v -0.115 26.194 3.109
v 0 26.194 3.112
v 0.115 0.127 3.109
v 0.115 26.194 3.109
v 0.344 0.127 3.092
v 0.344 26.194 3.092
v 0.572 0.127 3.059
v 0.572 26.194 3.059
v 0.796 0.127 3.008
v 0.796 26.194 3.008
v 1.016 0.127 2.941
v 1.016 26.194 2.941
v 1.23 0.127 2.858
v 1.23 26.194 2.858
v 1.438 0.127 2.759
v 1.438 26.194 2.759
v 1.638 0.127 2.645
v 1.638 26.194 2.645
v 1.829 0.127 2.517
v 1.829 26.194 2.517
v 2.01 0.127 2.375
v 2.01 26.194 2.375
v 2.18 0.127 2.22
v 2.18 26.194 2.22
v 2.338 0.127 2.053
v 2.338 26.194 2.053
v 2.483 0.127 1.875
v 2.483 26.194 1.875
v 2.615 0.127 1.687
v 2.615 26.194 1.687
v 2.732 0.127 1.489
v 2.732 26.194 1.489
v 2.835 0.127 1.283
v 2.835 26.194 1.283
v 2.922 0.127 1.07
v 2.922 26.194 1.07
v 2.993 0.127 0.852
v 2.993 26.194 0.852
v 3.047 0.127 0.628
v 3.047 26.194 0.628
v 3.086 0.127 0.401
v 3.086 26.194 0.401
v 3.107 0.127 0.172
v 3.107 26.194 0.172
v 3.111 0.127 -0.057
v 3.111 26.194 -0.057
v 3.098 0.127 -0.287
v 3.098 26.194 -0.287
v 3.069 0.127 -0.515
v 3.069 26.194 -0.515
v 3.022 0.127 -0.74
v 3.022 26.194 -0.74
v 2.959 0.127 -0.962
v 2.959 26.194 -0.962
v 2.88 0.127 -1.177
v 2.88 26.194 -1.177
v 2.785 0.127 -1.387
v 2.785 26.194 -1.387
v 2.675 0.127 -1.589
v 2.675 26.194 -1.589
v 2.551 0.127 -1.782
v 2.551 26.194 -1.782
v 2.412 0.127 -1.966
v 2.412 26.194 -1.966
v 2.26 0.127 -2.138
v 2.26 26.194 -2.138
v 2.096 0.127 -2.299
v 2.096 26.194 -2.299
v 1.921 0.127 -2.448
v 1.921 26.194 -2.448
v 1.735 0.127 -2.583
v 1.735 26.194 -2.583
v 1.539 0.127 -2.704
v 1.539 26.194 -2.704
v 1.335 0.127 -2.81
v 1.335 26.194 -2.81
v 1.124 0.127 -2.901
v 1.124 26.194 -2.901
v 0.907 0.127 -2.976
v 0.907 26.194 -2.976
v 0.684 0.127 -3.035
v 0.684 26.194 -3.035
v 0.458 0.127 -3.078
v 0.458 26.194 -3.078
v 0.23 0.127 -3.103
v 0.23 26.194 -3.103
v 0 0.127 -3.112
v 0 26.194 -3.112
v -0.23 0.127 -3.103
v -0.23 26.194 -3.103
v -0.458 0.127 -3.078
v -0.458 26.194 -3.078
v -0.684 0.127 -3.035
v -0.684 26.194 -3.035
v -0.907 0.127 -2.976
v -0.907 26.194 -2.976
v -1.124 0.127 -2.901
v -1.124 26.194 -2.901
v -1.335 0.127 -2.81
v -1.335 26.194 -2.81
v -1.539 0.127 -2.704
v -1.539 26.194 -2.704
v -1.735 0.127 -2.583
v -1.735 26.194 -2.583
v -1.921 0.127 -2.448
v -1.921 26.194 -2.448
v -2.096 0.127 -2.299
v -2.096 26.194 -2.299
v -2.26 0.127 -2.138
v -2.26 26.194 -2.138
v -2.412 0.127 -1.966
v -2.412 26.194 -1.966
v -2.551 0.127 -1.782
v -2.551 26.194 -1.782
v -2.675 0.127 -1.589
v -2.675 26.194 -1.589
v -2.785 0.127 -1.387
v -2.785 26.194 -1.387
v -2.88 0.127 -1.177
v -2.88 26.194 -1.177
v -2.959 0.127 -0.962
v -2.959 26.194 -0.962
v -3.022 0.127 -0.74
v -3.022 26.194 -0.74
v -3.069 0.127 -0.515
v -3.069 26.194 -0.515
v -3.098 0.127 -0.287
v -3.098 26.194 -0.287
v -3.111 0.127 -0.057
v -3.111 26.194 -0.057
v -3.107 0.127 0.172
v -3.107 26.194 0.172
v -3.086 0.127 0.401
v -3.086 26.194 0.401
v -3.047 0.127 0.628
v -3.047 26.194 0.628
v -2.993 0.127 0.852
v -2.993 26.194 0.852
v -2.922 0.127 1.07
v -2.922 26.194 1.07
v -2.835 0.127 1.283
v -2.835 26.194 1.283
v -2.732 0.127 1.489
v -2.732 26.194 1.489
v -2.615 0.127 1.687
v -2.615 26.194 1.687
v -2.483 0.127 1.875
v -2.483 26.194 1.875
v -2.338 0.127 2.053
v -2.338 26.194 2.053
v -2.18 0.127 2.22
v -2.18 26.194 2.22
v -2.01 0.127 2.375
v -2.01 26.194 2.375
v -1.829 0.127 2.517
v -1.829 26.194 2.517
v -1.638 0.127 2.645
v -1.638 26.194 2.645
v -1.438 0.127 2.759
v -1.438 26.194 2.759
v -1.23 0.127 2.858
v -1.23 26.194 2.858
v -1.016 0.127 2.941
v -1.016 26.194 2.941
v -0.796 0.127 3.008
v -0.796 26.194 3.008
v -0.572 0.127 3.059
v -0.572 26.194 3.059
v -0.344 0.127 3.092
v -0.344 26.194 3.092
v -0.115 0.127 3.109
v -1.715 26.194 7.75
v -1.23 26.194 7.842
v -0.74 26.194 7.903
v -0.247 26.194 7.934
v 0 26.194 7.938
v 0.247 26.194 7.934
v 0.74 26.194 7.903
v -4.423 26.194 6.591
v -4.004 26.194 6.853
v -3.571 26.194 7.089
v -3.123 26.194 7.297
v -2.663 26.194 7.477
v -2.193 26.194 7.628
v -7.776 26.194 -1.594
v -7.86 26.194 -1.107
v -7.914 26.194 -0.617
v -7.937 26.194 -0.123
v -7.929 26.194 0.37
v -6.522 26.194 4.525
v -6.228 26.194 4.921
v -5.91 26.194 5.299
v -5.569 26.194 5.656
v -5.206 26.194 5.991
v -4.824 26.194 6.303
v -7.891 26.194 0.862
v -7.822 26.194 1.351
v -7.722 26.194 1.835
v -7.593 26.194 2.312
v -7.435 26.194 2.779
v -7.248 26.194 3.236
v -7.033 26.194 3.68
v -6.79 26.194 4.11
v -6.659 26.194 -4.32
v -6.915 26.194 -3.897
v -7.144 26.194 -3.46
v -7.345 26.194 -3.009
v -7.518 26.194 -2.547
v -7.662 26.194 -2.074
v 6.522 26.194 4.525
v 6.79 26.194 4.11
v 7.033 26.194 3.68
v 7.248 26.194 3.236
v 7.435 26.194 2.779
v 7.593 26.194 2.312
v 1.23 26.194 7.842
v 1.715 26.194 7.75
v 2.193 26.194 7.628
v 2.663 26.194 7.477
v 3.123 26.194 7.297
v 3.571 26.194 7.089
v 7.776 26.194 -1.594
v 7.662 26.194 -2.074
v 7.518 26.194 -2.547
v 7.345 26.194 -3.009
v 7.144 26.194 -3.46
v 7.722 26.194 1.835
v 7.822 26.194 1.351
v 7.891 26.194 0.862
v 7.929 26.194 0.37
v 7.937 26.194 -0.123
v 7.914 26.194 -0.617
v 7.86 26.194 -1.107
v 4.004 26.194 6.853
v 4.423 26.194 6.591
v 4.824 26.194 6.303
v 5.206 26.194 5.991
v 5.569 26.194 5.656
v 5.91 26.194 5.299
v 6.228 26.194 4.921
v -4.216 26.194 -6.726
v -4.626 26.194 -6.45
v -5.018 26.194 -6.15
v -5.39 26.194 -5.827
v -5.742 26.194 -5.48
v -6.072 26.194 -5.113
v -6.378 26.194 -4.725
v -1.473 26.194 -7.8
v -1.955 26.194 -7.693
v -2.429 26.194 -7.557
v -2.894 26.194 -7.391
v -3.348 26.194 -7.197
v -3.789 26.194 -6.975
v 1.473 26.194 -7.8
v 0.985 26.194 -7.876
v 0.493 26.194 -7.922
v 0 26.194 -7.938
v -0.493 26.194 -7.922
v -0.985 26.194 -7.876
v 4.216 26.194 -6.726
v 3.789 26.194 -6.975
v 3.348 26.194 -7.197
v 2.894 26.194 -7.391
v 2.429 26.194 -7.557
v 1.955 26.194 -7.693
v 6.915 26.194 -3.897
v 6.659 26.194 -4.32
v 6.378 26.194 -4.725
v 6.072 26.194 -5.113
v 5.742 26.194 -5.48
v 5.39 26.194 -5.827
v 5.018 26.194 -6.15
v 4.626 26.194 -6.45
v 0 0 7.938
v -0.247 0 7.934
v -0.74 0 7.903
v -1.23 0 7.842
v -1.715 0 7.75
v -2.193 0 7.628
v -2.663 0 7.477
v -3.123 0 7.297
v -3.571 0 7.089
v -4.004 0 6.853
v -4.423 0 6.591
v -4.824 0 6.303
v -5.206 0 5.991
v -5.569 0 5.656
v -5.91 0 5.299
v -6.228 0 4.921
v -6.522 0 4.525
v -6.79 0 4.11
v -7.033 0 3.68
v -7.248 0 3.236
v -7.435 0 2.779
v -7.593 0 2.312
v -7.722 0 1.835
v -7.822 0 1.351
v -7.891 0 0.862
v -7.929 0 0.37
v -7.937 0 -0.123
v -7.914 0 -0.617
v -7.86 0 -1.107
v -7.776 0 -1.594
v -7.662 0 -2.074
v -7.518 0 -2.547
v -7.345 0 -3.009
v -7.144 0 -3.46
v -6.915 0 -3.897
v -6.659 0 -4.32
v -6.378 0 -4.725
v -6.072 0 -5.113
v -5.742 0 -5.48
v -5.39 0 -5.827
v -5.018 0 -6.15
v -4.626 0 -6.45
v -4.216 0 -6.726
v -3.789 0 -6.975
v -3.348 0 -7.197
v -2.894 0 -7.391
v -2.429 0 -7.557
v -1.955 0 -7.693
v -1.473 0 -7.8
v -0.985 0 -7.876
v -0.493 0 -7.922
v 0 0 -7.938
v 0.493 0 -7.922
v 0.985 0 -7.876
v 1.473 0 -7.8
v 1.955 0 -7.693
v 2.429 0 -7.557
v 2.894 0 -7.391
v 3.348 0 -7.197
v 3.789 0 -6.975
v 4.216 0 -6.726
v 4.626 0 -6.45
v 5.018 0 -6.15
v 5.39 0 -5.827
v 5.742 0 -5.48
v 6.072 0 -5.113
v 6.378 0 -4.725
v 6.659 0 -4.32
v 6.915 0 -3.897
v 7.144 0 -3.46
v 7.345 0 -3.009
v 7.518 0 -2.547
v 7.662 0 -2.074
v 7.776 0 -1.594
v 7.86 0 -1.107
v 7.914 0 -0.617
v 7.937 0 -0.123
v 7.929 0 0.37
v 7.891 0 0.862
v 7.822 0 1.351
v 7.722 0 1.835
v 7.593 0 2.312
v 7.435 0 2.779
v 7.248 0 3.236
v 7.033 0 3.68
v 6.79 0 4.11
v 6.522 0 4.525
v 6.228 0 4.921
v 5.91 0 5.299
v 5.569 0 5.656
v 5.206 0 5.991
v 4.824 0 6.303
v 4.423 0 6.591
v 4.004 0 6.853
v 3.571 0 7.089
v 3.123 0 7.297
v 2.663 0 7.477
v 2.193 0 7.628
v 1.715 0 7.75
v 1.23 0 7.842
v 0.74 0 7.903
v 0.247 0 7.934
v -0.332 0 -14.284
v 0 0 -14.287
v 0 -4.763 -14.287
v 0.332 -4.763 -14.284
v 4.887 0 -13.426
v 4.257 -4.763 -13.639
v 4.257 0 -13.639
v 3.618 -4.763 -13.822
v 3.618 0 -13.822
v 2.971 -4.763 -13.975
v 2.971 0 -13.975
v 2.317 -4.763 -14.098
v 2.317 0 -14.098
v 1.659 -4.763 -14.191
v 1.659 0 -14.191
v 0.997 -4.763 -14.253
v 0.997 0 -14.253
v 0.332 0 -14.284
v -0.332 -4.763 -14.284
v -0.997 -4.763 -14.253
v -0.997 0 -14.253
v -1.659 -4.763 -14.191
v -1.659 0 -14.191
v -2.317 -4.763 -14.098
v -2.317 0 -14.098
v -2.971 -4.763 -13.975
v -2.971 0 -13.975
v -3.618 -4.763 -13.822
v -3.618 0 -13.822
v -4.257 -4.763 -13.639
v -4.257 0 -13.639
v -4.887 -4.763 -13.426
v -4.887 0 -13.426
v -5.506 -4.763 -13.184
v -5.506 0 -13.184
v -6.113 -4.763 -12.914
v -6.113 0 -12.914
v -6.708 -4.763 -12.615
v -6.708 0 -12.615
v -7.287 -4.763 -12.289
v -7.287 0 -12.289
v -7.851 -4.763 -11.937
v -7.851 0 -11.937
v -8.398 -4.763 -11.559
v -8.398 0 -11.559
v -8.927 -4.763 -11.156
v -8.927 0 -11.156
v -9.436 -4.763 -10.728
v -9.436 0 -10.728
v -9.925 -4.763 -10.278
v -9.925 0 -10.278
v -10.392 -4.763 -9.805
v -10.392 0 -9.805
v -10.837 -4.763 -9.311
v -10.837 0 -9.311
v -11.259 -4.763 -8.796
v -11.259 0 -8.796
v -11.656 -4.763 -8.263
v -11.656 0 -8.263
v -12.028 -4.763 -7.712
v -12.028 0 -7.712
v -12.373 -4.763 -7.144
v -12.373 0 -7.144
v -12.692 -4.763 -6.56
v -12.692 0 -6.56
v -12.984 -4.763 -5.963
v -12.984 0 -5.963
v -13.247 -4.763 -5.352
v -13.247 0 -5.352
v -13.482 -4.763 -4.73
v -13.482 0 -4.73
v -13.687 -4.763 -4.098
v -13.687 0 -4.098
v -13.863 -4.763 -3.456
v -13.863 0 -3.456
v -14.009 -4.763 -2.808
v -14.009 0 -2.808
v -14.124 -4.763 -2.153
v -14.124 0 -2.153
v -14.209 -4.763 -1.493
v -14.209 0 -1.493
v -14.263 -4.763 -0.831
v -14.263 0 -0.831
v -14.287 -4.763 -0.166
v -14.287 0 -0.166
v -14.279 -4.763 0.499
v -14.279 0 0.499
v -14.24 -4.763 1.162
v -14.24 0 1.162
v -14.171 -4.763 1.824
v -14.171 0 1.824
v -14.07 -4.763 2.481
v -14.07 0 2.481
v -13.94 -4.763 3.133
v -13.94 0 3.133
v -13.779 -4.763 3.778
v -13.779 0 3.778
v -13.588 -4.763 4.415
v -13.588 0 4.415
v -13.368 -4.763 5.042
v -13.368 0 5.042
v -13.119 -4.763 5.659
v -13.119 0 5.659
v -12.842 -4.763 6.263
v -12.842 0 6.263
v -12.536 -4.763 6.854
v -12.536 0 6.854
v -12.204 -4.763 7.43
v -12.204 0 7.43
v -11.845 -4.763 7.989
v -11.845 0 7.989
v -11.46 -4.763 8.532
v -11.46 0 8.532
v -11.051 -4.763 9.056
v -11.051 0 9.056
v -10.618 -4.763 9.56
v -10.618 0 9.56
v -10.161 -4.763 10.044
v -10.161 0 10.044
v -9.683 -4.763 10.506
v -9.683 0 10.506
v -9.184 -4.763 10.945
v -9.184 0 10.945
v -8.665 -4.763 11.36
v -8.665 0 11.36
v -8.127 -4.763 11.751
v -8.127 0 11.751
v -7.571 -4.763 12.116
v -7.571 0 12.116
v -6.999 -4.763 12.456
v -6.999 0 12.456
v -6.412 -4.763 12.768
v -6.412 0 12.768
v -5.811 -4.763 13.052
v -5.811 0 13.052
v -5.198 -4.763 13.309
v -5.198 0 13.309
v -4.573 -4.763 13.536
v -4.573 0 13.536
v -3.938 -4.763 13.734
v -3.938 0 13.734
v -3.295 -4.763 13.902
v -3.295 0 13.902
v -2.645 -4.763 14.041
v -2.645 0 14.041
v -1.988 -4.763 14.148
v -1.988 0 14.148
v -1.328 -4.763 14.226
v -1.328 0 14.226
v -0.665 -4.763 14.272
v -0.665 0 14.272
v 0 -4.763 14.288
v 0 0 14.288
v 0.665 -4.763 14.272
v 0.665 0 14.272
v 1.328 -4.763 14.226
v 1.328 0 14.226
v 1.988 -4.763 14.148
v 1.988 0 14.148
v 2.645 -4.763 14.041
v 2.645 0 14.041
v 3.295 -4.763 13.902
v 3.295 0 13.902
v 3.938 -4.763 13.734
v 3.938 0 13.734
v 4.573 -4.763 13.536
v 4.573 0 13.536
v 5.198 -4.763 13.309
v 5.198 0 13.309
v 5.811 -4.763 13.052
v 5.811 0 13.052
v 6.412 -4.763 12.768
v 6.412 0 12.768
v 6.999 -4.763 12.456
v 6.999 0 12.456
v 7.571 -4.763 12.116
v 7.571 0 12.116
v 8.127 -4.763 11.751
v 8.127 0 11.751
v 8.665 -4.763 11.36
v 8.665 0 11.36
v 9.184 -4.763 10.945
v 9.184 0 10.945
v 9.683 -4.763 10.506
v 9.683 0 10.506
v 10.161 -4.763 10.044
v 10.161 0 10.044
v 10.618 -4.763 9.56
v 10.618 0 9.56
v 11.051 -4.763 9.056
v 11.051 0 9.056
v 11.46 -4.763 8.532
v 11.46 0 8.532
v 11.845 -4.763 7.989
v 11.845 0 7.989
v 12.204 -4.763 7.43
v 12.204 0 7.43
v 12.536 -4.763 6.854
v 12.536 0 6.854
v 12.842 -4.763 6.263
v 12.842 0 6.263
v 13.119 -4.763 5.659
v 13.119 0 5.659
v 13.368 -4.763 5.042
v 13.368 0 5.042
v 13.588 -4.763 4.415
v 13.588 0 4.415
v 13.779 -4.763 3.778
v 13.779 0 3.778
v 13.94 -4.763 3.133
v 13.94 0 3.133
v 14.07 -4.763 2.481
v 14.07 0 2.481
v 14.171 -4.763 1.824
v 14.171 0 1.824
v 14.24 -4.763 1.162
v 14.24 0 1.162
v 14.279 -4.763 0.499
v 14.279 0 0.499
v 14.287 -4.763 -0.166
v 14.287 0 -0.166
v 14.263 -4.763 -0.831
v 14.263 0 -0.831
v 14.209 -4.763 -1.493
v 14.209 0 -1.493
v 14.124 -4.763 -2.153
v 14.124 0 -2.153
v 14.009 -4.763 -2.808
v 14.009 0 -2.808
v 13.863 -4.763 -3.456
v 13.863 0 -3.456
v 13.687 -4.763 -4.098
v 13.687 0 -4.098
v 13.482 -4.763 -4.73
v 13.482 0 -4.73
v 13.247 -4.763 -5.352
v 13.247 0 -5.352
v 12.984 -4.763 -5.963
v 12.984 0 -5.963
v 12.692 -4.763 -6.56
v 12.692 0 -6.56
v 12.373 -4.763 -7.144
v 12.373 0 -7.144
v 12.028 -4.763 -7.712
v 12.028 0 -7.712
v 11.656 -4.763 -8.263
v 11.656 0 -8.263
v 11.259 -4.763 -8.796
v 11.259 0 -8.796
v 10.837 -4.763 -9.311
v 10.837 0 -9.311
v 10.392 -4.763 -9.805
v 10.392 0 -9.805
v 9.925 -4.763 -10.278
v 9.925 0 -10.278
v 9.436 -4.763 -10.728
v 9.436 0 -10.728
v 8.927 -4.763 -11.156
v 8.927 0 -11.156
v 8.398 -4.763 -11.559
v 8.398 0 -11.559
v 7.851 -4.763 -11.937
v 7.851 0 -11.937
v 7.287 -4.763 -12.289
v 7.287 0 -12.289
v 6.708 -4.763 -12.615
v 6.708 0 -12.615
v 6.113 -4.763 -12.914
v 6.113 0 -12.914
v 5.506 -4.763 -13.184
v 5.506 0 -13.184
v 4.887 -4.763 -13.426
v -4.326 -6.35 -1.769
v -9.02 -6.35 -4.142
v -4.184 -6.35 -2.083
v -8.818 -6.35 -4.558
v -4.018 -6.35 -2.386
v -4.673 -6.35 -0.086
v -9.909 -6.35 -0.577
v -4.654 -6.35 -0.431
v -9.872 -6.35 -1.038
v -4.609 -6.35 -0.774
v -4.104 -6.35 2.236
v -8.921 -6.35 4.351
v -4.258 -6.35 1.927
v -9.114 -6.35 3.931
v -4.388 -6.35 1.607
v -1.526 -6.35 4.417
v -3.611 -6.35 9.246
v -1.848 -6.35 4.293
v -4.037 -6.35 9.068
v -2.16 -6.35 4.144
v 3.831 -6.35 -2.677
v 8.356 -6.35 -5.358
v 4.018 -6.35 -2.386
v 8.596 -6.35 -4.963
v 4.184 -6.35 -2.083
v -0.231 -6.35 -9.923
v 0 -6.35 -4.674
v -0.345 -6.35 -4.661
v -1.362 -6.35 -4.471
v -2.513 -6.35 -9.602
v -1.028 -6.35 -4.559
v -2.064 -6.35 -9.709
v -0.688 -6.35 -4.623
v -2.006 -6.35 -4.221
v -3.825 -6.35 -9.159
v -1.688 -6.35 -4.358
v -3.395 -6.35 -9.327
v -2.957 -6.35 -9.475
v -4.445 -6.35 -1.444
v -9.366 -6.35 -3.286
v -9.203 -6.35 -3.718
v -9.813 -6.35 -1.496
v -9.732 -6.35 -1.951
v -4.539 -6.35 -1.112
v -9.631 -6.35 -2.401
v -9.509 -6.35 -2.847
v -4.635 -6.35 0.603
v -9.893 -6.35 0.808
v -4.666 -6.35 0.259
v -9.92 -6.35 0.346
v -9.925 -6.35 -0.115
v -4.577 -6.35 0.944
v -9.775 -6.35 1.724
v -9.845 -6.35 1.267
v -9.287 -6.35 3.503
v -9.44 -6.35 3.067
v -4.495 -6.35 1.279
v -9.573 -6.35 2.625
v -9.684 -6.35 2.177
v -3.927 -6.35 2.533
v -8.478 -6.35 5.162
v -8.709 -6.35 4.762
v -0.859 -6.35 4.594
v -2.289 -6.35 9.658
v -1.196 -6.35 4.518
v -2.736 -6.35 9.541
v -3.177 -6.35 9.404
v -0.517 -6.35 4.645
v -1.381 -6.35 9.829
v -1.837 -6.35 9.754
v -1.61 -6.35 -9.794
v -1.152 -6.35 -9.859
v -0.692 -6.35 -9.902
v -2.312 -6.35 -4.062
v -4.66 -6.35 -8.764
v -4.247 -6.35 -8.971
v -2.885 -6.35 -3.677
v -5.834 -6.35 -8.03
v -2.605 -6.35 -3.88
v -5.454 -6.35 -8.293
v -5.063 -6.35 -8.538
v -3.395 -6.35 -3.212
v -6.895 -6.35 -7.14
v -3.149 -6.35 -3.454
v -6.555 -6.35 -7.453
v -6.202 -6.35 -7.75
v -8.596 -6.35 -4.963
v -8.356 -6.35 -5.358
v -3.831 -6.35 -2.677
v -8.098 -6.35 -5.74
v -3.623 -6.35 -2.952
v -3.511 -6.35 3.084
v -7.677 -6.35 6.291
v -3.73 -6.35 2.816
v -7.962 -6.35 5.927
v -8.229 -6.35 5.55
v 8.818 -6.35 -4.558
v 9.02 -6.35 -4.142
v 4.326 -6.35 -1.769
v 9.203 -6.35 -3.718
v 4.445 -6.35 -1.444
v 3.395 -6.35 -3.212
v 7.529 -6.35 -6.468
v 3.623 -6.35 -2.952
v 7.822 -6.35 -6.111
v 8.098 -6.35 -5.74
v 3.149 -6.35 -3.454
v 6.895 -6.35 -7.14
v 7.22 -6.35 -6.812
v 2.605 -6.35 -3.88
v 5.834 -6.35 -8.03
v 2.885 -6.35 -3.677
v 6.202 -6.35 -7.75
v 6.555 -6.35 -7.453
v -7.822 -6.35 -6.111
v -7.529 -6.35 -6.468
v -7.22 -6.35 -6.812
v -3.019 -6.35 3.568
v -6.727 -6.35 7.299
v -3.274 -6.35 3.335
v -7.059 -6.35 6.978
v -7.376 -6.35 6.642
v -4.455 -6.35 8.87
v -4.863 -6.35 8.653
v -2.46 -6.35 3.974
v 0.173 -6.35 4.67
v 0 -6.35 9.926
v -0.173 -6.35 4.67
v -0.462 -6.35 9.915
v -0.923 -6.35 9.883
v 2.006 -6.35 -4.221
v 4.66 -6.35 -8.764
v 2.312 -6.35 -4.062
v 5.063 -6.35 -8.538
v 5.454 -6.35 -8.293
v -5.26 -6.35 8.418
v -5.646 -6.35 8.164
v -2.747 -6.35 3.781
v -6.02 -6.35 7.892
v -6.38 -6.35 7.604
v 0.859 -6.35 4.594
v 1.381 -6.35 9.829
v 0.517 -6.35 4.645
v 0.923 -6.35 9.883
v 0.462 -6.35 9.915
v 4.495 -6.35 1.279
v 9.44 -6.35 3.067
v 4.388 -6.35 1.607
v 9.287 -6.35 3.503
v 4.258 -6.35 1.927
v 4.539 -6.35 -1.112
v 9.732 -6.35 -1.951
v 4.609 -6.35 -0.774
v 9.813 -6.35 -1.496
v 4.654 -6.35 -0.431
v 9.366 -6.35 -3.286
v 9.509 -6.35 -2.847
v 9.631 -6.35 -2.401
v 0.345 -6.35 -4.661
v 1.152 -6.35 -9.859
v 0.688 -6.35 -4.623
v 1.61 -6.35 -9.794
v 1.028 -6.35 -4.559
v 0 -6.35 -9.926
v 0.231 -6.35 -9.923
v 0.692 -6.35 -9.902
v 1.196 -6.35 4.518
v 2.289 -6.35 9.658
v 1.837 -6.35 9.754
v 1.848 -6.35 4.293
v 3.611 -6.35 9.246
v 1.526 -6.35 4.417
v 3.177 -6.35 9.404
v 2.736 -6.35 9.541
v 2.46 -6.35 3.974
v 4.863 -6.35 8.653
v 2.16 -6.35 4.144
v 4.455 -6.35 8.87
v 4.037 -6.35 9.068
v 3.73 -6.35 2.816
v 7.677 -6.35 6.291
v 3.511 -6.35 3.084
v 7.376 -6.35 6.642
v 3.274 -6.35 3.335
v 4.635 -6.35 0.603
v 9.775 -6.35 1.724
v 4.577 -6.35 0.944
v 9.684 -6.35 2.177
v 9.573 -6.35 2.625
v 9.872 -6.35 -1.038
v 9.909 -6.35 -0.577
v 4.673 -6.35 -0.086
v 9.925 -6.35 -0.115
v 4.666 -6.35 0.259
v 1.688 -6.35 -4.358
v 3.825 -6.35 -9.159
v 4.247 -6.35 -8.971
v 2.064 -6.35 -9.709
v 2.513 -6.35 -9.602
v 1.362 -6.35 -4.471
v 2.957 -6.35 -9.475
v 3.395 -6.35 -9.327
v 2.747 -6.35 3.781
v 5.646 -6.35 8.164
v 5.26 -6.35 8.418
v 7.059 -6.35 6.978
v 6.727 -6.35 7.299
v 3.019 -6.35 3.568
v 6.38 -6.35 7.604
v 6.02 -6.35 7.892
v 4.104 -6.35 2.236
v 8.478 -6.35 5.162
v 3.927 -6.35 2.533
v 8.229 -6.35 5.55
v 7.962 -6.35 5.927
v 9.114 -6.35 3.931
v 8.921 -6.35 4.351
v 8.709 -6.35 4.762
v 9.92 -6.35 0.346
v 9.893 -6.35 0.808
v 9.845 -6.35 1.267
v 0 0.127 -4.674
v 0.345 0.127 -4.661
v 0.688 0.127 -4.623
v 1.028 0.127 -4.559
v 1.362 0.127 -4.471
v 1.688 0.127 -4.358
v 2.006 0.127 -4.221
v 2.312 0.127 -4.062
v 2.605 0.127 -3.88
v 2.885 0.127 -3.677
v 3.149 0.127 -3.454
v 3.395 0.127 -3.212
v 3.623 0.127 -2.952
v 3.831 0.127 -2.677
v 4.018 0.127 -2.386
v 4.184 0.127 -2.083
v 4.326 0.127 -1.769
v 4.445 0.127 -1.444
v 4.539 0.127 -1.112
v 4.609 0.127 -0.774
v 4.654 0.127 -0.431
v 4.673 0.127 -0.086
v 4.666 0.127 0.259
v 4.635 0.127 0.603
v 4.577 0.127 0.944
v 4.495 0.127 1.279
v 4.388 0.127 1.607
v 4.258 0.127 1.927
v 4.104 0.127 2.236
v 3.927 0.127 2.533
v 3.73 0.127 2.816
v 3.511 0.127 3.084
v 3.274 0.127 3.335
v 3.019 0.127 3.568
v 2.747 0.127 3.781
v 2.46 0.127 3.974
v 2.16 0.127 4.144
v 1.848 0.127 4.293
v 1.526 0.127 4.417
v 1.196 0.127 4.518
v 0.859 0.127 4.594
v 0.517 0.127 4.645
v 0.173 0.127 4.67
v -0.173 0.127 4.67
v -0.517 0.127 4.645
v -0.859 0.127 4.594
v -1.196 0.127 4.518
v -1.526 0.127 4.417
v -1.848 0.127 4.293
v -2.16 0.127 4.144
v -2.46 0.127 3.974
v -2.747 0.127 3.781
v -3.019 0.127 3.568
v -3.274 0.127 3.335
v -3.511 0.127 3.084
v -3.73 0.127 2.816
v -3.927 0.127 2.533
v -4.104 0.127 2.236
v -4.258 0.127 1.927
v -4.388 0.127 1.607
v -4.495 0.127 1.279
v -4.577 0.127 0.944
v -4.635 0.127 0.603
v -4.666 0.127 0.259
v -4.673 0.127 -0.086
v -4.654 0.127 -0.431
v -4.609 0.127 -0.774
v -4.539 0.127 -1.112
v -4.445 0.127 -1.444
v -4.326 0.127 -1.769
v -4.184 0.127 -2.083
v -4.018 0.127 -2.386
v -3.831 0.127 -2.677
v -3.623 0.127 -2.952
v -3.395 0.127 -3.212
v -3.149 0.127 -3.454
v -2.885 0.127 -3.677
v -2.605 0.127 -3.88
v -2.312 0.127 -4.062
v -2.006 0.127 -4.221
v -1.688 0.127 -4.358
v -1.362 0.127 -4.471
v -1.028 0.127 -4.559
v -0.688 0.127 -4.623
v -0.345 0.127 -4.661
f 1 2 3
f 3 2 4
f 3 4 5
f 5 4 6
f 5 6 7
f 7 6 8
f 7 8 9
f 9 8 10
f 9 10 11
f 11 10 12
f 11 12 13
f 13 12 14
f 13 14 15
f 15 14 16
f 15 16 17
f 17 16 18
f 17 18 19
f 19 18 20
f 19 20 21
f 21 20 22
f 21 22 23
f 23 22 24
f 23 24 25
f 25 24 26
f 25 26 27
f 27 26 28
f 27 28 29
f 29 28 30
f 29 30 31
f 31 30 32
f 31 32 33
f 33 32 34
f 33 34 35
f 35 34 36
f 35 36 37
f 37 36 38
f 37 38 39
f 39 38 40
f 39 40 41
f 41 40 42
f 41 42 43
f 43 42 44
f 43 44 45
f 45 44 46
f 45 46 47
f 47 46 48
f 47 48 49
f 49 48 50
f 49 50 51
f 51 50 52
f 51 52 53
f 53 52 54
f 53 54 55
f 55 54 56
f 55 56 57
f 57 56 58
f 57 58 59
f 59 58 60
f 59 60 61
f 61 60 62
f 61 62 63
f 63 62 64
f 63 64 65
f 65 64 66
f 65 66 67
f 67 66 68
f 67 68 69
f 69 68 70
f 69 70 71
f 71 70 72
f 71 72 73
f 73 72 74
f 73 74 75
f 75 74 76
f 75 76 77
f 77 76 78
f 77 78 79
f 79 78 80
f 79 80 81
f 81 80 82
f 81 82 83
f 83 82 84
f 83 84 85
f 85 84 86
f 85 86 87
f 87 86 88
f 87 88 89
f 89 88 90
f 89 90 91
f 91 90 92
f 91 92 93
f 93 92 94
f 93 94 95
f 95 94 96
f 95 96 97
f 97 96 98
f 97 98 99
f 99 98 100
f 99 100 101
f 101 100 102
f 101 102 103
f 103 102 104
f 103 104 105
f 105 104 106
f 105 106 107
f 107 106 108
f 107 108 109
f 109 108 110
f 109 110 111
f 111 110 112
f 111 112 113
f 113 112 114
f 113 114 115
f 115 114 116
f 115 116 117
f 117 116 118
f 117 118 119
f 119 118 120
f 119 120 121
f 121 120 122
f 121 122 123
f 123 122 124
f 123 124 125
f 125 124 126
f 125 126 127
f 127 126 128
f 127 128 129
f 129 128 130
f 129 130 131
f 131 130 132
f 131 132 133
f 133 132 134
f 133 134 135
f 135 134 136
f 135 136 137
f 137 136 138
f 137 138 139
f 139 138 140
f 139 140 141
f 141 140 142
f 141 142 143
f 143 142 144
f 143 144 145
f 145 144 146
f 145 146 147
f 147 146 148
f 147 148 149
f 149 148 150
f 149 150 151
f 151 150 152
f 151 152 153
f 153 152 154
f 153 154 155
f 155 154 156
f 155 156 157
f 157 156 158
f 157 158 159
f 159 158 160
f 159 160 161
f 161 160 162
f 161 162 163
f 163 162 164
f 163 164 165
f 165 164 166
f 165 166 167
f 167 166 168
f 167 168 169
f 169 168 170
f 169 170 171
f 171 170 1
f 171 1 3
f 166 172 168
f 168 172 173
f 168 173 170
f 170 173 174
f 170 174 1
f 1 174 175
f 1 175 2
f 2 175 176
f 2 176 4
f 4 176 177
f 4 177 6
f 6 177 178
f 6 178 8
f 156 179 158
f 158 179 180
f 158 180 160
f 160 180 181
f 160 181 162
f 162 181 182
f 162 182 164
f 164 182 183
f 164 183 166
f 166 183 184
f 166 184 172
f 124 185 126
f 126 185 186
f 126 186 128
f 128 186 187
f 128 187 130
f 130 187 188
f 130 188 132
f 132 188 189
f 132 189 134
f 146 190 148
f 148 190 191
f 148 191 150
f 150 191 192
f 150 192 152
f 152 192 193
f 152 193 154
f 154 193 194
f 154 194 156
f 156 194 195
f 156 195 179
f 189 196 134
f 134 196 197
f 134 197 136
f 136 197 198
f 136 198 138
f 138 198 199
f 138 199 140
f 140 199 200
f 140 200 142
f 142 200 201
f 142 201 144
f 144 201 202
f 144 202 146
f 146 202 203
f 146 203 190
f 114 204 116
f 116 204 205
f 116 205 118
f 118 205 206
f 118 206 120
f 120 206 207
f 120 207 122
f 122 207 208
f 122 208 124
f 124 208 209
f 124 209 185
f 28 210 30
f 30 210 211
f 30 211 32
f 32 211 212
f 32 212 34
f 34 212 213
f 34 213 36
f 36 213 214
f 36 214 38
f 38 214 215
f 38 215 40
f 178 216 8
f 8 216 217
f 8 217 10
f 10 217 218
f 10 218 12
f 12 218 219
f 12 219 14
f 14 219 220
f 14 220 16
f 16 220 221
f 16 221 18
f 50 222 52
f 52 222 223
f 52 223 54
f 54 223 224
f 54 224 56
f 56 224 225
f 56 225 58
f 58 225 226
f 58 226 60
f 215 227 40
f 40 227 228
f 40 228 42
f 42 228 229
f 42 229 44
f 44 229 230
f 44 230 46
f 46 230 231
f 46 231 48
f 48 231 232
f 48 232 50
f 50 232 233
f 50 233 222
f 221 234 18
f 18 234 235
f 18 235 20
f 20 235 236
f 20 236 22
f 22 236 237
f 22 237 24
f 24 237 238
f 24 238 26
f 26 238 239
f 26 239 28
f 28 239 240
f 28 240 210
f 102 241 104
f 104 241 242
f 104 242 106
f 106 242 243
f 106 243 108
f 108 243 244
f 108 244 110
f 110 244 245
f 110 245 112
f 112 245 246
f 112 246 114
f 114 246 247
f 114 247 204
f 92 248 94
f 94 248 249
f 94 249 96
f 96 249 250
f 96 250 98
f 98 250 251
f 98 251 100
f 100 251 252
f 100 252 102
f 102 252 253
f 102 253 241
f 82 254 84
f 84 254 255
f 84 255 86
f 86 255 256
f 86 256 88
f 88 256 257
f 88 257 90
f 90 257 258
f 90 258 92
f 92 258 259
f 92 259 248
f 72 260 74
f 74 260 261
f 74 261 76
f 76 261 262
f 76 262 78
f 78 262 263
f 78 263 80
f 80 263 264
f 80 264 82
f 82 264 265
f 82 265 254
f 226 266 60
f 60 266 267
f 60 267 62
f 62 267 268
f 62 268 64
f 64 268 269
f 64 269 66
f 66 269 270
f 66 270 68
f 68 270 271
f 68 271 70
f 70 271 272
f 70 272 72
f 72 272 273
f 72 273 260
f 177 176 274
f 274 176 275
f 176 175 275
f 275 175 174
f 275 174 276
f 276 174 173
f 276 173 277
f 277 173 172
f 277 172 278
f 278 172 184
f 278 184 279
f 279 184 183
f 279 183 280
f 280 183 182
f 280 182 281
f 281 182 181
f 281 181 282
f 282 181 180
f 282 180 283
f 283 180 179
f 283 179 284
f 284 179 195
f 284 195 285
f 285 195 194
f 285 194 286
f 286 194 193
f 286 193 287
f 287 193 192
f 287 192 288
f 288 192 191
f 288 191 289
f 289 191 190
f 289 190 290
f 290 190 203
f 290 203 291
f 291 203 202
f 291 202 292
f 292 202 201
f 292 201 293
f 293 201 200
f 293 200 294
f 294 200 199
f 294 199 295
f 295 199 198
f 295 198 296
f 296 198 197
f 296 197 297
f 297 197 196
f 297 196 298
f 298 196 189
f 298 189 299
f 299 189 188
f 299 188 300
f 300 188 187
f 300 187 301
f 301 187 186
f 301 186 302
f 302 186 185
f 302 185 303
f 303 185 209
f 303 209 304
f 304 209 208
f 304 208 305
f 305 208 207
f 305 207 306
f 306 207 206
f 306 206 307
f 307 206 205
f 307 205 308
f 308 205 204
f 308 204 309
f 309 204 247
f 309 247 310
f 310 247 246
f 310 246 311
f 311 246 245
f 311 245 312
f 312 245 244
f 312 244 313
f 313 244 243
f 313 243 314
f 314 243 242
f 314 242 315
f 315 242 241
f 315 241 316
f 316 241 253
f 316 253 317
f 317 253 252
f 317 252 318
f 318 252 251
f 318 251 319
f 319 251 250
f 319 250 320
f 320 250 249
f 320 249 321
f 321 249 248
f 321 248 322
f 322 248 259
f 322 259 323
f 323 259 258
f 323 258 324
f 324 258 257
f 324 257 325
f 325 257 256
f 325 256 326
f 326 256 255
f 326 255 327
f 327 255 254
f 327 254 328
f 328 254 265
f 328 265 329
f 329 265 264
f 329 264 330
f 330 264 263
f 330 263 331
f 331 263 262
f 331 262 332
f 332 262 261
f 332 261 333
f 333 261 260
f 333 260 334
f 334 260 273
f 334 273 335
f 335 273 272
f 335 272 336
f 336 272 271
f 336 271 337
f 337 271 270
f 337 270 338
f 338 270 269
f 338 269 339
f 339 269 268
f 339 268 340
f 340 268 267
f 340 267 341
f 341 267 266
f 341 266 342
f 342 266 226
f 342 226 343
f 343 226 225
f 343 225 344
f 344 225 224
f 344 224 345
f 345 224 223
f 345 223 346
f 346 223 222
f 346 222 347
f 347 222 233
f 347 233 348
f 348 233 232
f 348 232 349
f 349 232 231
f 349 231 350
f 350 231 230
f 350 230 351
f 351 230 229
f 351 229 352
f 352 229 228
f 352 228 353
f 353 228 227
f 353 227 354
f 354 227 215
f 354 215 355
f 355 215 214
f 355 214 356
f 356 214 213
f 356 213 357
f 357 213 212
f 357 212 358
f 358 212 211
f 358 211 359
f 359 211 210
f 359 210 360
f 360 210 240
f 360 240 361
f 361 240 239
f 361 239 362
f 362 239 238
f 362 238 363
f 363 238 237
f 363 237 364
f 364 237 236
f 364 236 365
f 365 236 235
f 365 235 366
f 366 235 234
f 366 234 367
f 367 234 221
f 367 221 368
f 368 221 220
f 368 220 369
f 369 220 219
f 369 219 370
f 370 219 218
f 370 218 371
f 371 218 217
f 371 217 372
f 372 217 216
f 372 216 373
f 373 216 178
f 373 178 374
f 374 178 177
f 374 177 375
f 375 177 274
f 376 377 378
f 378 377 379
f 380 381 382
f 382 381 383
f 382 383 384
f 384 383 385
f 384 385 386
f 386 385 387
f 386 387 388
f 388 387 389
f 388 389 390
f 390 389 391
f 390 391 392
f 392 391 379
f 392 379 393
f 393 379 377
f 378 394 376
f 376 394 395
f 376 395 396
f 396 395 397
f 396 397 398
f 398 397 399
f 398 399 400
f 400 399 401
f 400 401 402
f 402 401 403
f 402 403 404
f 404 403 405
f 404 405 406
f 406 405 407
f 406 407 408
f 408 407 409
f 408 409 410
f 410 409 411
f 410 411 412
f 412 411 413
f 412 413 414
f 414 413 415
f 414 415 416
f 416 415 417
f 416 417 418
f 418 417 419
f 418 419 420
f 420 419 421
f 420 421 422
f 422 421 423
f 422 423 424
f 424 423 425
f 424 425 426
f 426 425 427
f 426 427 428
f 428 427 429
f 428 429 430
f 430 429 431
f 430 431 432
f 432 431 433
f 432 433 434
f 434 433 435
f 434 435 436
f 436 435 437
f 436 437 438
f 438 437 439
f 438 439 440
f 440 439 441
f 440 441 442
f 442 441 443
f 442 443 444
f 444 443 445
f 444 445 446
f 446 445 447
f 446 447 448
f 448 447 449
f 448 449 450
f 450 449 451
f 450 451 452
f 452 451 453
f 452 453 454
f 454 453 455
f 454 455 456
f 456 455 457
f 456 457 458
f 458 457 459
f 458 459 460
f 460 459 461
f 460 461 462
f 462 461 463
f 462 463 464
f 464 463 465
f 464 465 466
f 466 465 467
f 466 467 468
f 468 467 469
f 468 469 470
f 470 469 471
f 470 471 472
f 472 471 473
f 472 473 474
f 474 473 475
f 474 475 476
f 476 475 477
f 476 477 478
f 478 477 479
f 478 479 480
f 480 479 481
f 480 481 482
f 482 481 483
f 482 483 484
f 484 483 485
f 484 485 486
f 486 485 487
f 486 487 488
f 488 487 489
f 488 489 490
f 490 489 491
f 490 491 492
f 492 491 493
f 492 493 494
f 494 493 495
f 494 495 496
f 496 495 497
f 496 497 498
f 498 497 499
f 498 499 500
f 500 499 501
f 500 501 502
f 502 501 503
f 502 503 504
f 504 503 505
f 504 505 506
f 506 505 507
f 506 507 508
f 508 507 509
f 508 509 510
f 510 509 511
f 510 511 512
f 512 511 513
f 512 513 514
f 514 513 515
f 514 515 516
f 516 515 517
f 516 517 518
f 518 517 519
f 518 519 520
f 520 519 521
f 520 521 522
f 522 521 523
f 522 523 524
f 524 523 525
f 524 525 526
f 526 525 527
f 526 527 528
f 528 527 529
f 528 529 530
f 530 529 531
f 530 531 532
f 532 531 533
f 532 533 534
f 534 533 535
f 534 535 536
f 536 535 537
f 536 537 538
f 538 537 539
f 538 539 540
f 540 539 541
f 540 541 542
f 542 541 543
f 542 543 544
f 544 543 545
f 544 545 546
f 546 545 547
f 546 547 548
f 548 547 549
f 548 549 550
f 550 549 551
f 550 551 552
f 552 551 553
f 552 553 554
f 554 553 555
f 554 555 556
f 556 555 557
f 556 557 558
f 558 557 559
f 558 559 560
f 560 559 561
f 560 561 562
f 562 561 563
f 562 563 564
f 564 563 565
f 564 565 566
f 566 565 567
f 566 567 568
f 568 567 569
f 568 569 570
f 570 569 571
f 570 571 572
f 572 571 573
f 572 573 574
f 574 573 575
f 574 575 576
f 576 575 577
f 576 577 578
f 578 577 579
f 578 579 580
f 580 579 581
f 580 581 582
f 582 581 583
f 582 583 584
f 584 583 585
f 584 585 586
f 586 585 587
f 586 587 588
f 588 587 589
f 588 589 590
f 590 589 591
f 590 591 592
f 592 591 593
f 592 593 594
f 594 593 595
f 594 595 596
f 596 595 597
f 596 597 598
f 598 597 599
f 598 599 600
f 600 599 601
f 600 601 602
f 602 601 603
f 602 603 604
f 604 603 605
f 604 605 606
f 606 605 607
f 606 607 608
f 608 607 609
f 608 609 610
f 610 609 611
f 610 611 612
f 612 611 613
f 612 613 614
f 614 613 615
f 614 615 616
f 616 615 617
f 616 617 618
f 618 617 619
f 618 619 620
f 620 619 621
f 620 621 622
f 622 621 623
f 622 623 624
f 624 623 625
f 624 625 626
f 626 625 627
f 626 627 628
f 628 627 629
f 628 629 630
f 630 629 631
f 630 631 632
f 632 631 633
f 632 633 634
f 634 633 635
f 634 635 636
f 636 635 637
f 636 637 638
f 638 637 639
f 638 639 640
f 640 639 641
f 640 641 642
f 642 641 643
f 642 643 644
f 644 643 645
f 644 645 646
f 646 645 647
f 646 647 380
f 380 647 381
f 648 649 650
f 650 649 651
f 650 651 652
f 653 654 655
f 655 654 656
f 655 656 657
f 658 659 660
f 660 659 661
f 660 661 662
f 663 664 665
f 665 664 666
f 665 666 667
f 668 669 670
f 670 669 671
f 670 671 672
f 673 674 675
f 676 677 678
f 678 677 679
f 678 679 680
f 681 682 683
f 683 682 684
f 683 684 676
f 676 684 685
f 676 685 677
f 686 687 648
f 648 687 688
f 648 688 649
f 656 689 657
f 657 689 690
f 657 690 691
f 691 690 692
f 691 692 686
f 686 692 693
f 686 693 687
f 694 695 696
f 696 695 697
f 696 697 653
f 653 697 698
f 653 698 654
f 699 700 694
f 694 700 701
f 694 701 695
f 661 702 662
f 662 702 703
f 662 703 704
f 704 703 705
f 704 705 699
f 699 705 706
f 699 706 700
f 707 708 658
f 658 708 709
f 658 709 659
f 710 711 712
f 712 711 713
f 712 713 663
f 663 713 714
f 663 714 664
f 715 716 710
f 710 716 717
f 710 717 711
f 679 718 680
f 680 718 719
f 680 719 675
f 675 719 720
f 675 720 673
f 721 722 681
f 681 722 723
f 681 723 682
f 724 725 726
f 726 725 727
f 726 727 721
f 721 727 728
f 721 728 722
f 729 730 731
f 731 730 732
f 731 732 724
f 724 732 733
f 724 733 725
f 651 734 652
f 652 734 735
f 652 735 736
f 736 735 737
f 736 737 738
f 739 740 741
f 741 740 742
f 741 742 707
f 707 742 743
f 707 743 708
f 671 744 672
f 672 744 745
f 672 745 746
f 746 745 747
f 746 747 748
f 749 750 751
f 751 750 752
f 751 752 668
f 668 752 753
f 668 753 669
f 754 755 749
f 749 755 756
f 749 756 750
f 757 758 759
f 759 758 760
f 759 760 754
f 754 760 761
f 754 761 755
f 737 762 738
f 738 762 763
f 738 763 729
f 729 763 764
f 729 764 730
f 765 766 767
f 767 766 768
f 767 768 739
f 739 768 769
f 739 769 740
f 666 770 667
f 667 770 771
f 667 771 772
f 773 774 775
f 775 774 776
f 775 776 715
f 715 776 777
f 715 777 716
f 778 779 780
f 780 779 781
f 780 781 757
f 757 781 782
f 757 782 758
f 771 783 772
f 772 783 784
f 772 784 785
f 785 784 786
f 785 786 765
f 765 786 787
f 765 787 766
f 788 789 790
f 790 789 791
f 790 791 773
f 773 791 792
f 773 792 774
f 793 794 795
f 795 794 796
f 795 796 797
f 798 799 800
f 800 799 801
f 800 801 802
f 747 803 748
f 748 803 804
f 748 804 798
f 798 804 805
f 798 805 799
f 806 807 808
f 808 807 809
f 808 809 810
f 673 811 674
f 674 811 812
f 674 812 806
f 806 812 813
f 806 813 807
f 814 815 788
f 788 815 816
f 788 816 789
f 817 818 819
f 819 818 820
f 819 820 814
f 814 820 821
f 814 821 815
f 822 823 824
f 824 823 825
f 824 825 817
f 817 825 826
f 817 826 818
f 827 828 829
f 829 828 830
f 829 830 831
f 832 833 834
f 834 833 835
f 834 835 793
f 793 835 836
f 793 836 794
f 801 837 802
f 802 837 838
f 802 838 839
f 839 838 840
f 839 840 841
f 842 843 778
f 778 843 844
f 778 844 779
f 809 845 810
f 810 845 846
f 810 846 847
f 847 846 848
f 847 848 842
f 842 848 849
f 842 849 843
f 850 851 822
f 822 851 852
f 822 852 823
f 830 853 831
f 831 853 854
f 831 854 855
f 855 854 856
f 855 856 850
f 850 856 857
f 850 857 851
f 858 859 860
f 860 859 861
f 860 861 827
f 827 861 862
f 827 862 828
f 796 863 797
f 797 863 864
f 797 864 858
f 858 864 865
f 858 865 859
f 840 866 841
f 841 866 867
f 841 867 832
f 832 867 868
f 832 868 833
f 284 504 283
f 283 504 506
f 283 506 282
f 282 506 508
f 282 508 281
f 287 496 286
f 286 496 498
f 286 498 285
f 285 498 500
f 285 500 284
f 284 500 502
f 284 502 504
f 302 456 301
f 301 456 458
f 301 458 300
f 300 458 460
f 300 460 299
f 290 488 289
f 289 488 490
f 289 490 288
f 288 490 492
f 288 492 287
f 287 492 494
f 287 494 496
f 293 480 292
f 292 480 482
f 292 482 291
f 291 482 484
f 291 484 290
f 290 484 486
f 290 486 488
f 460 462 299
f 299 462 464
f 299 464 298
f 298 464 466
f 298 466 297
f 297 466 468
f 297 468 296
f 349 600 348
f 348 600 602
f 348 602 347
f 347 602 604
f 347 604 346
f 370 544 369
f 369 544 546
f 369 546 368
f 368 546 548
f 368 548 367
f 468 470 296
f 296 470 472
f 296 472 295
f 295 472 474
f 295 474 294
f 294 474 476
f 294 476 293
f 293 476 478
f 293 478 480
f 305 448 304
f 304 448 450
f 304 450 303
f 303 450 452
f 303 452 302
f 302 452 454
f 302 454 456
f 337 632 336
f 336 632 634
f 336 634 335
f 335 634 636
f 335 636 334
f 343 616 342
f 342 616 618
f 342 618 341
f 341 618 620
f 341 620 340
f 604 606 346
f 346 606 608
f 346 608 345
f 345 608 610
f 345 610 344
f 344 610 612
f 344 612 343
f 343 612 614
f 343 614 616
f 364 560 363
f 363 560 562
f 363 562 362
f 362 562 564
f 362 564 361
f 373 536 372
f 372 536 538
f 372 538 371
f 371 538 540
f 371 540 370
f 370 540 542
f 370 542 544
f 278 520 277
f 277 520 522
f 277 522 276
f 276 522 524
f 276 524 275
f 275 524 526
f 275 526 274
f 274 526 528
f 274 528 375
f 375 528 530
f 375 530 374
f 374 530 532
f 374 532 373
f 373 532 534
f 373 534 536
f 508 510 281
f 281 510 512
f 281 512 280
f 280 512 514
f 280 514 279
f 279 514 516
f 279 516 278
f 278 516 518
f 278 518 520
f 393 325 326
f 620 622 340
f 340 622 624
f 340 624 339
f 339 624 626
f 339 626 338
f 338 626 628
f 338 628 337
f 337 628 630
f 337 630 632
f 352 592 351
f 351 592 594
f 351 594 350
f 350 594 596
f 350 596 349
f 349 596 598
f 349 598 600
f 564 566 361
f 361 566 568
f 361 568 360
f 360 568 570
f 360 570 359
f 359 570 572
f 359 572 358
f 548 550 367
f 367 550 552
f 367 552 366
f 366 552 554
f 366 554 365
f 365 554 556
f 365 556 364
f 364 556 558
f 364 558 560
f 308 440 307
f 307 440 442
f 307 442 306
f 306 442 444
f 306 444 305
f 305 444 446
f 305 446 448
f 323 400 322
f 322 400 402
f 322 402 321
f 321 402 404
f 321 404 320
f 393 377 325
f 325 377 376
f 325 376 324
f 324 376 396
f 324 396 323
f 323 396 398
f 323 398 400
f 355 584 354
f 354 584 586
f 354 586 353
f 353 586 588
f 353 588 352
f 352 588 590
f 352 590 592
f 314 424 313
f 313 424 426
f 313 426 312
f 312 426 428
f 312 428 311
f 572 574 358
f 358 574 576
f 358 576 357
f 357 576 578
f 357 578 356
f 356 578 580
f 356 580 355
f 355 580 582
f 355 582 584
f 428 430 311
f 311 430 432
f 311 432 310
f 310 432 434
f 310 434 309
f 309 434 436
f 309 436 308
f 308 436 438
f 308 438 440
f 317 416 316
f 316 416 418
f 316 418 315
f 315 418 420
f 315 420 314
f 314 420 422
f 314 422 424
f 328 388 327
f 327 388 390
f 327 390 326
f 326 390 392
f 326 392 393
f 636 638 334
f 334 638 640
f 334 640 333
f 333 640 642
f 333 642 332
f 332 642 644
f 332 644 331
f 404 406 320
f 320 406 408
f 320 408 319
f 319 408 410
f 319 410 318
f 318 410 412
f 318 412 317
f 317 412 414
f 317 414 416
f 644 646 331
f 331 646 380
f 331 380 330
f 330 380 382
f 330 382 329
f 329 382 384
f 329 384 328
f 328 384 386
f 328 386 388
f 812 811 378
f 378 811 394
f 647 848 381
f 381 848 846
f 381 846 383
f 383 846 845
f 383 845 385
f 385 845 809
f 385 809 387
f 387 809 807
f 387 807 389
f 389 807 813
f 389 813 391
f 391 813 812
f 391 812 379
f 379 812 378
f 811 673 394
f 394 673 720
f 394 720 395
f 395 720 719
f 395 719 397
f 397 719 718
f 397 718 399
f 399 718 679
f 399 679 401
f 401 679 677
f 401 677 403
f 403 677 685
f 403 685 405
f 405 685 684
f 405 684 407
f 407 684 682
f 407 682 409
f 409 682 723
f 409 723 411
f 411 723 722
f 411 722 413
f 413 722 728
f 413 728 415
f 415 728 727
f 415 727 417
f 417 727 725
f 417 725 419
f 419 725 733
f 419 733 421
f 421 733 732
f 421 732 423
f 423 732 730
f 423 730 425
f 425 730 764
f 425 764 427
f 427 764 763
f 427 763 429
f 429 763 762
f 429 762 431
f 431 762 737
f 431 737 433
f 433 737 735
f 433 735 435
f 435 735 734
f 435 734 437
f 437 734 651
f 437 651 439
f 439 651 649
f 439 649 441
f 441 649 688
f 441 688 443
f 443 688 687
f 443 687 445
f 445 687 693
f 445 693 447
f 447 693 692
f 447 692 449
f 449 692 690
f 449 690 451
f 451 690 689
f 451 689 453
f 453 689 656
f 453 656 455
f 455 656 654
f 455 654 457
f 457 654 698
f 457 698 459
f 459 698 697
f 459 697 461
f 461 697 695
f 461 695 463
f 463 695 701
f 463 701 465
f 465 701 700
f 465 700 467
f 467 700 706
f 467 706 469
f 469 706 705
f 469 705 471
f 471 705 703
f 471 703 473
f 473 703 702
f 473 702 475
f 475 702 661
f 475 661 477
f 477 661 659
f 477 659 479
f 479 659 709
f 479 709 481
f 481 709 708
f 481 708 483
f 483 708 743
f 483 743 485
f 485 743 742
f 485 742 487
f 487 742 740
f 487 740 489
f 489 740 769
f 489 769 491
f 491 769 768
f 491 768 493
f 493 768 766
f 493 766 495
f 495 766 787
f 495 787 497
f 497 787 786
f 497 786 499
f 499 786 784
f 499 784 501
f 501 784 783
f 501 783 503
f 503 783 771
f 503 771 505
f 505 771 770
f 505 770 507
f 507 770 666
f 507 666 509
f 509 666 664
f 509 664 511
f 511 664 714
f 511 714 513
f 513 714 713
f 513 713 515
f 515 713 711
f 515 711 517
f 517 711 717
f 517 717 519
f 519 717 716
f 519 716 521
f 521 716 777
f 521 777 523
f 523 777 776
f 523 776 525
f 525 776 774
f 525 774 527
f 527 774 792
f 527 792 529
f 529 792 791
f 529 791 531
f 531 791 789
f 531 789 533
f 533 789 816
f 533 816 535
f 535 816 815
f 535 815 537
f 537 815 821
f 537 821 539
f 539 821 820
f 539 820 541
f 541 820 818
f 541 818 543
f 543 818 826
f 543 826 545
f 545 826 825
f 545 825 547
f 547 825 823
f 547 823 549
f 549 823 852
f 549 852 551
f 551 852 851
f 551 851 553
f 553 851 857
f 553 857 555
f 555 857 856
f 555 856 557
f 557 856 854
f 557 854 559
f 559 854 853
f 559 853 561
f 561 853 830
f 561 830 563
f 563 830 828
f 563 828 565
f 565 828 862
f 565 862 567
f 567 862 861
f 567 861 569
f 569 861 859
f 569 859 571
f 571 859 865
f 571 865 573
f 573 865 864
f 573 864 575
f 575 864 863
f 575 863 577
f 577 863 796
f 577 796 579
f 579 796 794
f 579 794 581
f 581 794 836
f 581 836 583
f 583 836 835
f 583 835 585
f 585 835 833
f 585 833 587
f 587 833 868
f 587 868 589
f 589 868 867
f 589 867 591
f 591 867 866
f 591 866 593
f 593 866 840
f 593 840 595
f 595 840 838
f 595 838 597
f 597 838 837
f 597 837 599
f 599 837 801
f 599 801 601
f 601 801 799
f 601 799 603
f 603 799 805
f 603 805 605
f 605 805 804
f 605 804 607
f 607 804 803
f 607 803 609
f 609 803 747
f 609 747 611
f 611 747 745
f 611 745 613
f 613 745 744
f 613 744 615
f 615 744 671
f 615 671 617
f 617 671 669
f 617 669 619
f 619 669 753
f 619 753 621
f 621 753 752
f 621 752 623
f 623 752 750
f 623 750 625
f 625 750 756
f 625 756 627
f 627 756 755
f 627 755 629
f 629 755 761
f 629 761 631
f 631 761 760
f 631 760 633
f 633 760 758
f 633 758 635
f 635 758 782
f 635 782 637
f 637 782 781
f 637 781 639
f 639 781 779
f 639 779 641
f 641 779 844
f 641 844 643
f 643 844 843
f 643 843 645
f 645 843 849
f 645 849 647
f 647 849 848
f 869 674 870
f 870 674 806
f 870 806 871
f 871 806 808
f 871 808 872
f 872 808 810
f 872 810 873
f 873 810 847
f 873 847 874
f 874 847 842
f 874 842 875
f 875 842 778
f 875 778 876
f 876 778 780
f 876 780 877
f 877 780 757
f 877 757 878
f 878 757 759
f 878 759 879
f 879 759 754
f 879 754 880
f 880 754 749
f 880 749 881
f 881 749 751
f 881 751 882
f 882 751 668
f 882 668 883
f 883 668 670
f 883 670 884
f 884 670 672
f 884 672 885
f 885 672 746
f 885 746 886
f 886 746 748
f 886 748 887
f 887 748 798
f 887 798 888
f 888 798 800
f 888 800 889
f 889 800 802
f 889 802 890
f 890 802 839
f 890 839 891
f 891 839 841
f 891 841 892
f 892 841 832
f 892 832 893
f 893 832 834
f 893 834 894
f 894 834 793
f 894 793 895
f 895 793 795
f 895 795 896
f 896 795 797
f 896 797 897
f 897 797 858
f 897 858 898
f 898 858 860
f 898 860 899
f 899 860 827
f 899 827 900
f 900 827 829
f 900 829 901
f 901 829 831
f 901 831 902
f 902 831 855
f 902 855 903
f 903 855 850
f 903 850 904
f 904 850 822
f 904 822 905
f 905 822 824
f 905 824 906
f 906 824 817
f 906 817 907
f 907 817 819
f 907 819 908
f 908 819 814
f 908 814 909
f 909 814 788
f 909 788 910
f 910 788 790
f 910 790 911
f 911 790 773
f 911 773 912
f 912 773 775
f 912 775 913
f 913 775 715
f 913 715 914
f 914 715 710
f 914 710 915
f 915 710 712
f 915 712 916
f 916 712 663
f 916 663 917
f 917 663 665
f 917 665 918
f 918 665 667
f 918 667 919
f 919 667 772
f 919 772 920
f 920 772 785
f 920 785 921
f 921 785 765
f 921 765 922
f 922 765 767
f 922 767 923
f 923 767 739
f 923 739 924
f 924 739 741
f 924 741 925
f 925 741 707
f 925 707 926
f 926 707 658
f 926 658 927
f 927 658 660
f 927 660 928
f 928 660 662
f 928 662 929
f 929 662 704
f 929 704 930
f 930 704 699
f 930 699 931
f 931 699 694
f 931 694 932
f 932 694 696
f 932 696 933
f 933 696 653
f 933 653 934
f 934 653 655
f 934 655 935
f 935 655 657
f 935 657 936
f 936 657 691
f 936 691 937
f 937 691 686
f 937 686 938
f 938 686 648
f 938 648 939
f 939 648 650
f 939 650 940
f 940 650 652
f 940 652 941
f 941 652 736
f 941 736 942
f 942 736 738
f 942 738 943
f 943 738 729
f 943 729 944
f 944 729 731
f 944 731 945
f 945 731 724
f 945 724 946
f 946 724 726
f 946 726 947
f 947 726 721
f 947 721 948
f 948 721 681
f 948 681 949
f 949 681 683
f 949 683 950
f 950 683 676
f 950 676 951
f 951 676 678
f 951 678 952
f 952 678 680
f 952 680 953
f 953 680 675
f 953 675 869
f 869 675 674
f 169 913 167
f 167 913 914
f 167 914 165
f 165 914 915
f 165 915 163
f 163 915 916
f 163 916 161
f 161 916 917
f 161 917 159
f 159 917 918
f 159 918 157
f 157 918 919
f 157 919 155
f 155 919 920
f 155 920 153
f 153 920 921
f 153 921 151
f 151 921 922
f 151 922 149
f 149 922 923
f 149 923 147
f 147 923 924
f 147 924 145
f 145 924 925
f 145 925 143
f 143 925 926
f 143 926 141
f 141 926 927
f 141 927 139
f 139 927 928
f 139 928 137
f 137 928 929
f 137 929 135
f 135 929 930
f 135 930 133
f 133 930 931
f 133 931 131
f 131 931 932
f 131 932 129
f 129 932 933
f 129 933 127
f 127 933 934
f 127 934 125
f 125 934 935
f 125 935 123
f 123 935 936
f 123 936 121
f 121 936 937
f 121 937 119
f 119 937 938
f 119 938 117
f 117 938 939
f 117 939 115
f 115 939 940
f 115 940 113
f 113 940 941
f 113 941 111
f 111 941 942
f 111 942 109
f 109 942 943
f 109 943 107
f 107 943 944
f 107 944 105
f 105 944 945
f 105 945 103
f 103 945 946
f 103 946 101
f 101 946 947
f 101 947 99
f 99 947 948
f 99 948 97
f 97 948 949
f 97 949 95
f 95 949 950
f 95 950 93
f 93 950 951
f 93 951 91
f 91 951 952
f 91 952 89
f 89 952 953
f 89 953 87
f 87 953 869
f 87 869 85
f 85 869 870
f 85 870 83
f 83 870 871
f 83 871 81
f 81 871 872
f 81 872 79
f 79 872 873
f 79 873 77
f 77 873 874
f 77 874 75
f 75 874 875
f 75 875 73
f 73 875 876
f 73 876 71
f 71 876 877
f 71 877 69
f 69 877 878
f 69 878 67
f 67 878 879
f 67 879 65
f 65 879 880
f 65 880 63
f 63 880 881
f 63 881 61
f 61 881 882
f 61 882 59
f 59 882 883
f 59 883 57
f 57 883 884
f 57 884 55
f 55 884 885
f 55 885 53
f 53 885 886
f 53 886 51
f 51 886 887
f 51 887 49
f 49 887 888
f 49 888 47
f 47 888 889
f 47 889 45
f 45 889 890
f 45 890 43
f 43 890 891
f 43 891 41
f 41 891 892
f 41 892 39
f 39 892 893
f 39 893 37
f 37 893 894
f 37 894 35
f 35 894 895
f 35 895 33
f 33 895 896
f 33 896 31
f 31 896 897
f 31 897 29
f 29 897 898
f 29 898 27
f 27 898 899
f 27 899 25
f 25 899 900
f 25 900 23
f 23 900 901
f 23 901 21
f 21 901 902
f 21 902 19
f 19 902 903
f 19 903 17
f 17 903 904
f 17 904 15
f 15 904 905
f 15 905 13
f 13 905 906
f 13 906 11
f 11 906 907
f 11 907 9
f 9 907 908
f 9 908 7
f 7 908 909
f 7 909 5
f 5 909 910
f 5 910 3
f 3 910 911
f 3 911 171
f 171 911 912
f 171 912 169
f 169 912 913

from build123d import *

# Parameters (mm, degrees)
SKETCH1_R           = 7.9375
SKETCH1_R_2         = 3.1115
BOSS_EXTRUDE1_DEPTH = 26.19375
SKETCH2_R           = 14.2875
BOSS_EXTRUDE2_DEPTH = 6.35
CHAMFER1_SIZE       = 1.5875
CHAMFER1_SIZE2      = 4.361620403
SKETCH3_R           = 4.6736
CUT_EXTRUDE1_DEPTH  = 6.477


with BuildPart() as part:
    # Sketch1 → Boss-Extrude1 (new body)
    with BuildSketch(Plane(origin=(0, 0, 0), x_dir=(1, 0, 0), z_dir=(0, 1, 0))):
        with Locations(Location((0, 0, 0), (0, 0, 270))):
            Circle(SKETCH1_R)
        with Locations(Location((0, 0, 0), (0, 0, 270))):
            Circle(SKETCH1_R_2, mode=Mode.SUBTRACT)
    extrude(amount=BOSS_EXTRUDE1_DEPTH)

    # Sketch2 → Boss-Extrude2 (add)
    with BuildSketch(Plane.XZ):
        with Locations(Location((0, 0, 0), (0, 0, 270))):
            Circle(SKETCH2_R)
    extrude(amount=BOSS_EXTRUDE2_DEPTH)

    # Chamfer1
    chamfer1_edges = [part.edges().sort_by_distance(p)[0] for p in [
        (0, -6.35, 14.2875),
    ]]
    chamfer1_side = [part.faces().sort_by_distance(p)[0] for p in [
        (0, -3.175, 14.2875),
    ]]
    chamfer(chamfer1_edges, length=CHAMFER1_SIZE, length2=CHAMFER1_SIZE2, reference=chamfer1_side[0])

    # Sketch3 → Cut-Extrude1 (cut)
    with BuildSketch(Plane.XZ.offset(6.35)):
        with Locations(Location((0, 0, 0), (0, 0, 270))):
            Circle(SKETCH3_R)
    extrude(amount=-CUT_EXTRUDE1_DEPTH, mode=Mode.SUBTRACT)


solid = part.part
